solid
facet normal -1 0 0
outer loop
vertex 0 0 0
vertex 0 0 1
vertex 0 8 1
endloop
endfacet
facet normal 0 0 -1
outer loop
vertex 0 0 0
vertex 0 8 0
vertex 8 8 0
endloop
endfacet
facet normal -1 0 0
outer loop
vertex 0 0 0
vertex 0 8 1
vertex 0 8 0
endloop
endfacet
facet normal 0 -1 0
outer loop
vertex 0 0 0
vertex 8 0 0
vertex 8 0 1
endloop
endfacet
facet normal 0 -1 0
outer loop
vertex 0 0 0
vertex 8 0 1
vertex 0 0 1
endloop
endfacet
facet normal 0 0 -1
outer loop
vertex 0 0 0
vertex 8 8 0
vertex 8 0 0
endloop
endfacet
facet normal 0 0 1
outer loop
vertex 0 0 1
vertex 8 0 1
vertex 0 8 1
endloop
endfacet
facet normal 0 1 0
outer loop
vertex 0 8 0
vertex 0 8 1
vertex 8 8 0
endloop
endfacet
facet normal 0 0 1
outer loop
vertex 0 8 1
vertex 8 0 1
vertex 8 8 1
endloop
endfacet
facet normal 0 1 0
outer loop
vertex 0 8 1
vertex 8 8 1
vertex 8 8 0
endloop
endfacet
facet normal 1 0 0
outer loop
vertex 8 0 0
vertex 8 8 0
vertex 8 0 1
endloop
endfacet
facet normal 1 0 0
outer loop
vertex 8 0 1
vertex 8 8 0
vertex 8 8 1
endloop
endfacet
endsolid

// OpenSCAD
/* Warning, this is a very basic generator with a lot of approximation 
input data : [VQFN, SAC, 8x8x1mm, 68, , A, C04-25635A]
generated by com.zoubworld.electronics.cad.model3d.Basic
Date : Sun Feb 15 10:50:49 CET 2026
*/

//body
color("black")
translate([0,0,0])
cube([8.0,8.0,1.0], center=false);
